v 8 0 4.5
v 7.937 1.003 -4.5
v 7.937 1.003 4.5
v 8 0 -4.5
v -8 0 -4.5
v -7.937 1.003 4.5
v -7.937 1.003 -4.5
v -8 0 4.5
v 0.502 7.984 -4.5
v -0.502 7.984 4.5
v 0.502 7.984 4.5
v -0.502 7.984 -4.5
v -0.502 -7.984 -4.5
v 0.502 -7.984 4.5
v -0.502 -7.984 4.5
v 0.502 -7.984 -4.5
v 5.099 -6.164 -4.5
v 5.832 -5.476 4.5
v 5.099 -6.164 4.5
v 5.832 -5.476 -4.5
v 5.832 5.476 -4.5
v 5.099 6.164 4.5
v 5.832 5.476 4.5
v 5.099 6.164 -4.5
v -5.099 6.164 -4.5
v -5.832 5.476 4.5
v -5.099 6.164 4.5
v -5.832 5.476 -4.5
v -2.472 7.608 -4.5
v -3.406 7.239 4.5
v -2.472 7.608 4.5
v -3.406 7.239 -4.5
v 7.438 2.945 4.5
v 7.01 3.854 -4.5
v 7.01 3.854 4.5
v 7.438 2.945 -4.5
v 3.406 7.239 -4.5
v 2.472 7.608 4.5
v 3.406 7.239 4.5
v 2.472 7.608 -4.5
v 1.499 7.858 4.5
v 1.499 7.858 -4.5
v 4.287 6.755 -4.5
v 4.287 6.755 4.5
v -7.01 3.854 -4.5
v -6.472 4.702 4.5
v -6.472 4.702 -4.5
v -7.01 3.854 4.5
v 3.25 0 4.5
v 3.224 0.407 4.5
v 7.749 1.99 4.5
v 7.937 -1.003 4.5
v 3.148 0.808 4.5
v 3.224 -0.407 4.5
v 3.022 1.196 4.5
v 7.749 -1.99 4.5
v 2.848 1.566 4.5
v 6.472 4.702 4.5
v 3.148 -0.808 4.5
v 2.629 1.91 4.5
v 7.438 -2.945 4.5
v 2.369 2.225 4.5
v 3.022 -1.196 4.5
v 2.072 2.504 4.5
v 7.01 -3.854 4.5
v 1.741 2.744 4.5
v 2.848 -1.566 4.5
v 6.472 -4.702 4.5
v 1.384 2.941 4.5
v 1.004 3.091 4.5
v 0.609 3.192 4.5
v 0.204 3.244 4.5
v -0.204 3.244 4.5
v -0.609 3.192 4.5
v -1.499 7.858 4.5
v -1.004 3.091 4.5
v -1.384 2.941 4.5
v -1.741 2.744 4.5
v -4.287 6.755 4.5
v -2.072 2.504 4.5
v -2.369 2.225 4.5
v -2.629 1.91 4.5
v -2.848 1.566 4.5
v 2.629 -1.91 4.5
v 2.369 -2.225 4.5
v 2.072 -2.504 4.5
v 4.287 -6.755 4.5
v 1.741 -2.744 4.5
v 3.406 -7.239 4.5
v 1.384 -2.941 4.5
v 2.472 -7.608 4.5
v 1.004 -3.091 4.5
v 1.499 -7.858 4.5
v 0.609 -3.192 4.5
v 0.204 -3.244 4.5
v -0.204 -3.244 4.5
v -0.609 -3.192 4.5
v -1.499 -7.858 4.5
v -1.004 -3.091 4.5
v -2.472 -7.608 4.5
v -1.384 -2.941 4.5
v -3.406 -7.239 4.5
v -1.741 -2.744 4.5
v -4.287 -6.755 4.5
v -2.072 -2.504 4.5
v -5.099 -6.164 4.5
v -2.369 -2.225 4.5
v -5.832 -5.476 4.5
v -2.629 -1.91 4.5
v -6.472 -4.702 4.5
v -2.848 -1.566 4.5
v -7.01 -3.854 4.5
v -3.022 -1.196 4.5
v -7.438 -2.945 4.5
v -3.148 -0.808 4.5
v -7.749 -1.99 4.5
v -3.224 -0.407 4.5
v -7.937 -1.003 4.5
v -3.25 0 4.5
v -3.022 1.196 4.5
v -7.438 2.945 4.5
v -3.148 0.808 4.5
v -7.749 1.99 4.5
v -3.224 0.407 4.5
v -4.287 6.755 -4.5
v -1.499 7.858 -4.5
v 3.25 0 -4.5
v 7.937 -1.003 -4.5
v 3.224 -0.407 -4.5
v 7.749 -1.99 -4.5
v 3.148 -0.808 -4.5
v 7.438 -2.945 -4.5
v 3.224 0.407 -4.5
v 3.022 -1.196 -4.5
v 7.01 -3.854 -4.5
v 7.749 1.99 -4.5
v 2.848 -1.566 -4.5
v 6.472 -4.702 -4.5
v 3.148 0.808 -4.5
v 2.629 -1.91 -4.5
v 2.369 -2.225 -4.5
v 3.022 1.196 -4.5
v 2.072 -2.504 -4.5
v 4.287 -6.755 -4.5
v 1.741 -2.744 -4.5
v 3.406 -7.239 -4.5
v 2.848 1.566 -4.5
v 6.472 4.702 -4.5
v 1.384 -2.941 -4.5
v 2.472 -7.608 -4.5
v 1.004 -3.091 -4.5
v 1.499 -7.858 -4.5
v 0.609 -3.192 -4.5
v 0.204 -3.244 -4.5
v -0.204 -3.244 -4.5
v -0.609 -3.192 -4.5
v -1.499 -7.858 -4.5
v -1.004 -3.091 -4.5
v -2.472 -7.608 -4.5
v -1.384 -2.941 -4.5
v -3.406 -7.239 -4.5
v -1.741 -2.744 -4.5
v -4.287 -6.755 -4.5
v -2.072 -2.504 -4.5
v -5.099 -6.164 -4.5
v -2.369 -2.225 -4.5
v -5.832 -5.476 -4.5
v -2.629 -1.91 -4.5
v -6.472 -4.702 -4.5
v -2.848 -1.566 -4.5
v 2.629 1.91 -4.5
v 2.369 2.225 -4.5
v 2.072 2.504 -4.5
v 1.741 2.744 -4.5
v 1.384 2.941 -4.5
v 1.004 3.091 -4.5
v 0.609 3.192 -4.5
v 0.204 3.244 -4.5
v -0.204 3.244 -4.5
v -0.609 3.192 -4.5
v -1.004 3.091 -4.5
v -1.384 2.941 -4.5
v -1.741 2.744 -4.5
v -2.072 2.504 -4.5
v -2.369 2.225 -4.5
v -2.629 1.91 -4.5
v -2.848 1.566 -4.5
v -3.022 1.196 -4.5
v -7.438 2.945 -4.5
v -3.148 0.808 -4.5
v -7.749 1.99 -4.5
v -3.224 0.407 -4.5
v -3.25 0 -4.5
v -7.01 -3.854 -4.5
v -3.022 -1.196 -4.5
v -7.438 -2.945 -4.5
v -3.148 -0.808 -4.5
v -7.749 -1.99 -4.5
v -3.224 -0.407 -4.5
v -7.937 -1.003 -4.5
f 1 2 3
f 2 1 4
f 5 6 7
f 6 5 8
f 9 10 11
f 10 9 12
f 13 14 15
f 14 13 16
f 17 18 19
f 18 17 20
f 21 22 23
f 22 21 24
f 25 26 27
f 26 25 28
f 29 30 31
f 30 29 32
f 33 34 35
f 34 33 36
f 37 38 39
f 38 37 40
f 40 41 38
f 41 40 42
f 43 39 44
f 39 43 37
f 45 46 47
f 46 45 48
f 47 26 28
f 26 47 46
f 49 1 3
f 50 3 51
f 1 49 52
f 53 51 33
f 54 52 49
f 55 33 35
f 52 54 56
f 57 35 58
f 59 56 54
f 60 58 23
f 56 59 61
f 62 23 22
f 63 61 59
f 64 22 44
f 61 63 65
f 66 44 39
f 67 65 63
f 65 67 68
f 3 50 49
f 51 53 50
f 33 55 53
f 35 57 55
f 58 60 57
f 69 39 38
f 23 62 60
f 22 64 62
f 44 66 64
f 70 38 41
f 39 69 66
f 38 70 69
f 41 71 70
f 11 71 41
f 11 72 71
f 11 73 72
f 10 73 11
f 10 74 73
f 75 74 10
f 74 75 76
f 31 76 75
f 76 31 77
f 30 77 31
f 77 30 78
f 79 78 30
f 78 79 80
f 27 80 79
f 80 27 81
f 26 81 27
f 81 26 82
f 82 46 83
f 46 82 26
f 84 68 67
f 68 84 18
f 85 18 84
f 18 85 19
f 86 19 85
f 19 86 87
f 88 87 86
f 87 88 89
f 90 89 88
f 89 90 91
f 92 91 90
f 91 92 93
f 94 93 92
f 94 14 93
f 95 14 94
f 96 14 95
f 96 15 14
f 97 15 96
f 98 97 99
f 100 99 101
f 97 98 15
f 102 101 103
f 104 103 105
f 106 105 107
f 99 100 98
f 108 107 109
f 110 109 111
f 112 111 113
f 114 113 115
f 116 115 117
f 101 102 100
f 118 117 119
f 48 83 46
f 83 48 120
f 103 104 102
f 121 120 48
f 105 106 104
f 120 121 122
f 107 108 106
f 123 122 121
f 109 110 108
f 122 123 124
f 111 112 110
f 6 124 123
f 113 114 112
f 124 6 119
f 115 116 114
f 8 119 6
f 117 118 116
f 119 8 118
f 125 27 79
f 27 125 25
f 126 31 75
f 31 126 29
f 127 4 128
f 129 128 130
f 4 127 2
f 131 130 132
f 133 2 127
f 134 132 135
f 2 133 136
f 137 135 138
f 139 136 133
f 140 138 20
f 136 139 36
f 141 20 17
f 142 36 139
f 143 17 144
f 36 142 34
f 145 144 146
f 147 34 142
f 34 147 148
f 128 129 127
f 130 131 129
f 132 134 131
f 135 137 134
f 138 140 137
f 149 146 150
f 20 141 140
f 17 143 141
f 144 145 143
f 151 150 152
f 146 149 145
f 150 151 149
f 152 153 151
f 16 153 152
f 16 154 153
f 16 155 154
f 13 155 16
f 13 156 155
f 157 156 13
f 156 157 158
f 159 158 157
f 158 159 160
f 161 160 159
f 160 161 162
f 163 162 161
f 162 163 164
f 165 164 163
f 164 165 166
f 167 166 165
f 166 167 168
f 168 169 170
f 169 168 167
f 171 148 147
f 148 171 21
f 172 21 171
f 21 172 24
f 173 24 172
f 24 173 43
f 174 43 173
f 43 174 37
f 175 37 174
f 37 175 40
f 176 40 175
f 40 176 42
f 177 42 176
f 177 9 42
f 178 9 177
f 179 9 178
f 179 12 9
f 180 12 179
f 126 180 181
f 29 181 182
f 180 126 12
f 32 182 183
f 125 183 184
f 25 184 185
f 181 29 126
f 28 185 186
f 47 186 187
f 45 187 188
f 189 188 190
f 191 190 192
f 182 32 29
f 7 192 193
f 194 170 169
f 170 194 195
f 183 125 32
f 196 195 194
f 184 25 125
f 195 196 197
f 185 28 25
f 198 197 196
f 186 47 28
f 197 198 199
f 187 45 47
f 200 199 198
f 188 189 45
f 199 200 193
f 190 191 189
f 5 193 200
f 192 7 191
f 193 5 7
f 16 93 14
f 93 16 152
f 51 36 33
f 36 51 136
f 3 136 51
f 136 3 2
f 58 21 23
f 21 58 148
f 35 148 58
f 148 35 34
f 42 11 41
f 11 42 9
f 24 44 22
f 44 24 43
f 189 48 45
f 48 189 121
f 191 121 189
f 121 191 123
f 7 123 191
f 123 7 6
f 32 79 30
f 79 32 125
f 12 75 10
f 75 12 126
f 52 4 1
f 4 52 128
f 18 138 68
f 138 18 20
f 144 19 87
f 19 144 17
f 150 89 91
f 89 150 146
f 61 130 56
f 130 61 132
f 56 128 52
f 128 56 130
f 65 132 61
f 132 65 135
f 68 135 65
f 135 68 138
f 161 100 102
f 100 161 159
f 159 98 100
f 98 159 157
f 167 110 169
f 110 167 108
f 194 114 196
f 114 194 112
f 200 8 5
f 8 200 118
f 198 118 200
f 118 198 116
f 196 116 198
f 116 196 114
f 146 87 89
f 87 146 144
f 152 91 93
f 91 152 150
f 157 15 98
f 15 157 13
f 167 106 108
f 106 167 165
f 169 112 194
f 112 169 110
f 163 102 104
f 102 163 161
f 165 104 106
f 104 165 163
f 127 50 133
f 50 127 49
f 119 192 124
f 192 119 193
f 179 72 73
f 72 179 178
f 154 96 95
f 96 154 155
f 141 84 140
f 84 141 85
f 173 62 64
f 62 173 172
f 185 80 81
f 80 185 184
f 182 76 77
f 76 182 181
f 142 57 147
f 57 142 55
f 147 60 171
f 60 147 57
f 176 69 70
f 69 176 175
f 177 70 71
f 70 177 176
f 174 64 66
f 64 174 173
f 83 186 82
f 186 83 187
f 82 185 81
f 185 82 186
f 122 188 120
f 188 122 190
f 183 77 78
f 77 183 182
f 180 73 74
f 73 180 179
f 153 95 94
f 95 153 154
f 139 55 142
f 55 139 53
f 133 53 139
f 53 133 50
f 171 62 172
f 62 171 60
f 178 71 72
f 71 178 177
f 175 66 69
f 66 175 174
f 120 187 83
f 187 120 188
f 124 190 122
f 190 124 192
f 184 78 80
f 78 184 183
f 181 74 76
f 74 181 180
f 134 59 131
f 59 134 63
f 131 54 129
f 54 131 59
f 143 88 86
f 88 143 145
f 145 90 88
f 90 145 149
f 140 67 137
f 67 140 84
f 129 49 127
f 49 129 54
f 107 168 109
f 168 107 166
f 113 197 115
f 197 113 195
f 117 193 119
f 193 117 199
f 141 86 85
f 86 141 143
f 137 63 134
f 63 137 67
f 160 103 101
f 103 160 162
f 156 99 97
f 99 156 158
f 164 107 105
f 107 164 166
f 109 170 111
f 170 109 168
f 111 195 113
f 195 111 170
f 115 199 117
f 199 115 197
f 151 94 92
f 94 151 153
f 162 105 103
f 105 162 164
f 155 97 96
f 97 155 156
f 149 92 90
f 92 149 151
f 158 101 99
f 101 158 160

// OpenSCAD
$fn = 50;


difference() {
	union() {
		translate(v = [0, 0, -4.5000000000]) {
			cylinder(h = 9, r = 8.0000000000);
		}
	}
	union() {
		translate(v = [0, 0, -100.0000000000]) {
			cylinder(h = 200, r = 3.2500000000);
		}
	}
}
